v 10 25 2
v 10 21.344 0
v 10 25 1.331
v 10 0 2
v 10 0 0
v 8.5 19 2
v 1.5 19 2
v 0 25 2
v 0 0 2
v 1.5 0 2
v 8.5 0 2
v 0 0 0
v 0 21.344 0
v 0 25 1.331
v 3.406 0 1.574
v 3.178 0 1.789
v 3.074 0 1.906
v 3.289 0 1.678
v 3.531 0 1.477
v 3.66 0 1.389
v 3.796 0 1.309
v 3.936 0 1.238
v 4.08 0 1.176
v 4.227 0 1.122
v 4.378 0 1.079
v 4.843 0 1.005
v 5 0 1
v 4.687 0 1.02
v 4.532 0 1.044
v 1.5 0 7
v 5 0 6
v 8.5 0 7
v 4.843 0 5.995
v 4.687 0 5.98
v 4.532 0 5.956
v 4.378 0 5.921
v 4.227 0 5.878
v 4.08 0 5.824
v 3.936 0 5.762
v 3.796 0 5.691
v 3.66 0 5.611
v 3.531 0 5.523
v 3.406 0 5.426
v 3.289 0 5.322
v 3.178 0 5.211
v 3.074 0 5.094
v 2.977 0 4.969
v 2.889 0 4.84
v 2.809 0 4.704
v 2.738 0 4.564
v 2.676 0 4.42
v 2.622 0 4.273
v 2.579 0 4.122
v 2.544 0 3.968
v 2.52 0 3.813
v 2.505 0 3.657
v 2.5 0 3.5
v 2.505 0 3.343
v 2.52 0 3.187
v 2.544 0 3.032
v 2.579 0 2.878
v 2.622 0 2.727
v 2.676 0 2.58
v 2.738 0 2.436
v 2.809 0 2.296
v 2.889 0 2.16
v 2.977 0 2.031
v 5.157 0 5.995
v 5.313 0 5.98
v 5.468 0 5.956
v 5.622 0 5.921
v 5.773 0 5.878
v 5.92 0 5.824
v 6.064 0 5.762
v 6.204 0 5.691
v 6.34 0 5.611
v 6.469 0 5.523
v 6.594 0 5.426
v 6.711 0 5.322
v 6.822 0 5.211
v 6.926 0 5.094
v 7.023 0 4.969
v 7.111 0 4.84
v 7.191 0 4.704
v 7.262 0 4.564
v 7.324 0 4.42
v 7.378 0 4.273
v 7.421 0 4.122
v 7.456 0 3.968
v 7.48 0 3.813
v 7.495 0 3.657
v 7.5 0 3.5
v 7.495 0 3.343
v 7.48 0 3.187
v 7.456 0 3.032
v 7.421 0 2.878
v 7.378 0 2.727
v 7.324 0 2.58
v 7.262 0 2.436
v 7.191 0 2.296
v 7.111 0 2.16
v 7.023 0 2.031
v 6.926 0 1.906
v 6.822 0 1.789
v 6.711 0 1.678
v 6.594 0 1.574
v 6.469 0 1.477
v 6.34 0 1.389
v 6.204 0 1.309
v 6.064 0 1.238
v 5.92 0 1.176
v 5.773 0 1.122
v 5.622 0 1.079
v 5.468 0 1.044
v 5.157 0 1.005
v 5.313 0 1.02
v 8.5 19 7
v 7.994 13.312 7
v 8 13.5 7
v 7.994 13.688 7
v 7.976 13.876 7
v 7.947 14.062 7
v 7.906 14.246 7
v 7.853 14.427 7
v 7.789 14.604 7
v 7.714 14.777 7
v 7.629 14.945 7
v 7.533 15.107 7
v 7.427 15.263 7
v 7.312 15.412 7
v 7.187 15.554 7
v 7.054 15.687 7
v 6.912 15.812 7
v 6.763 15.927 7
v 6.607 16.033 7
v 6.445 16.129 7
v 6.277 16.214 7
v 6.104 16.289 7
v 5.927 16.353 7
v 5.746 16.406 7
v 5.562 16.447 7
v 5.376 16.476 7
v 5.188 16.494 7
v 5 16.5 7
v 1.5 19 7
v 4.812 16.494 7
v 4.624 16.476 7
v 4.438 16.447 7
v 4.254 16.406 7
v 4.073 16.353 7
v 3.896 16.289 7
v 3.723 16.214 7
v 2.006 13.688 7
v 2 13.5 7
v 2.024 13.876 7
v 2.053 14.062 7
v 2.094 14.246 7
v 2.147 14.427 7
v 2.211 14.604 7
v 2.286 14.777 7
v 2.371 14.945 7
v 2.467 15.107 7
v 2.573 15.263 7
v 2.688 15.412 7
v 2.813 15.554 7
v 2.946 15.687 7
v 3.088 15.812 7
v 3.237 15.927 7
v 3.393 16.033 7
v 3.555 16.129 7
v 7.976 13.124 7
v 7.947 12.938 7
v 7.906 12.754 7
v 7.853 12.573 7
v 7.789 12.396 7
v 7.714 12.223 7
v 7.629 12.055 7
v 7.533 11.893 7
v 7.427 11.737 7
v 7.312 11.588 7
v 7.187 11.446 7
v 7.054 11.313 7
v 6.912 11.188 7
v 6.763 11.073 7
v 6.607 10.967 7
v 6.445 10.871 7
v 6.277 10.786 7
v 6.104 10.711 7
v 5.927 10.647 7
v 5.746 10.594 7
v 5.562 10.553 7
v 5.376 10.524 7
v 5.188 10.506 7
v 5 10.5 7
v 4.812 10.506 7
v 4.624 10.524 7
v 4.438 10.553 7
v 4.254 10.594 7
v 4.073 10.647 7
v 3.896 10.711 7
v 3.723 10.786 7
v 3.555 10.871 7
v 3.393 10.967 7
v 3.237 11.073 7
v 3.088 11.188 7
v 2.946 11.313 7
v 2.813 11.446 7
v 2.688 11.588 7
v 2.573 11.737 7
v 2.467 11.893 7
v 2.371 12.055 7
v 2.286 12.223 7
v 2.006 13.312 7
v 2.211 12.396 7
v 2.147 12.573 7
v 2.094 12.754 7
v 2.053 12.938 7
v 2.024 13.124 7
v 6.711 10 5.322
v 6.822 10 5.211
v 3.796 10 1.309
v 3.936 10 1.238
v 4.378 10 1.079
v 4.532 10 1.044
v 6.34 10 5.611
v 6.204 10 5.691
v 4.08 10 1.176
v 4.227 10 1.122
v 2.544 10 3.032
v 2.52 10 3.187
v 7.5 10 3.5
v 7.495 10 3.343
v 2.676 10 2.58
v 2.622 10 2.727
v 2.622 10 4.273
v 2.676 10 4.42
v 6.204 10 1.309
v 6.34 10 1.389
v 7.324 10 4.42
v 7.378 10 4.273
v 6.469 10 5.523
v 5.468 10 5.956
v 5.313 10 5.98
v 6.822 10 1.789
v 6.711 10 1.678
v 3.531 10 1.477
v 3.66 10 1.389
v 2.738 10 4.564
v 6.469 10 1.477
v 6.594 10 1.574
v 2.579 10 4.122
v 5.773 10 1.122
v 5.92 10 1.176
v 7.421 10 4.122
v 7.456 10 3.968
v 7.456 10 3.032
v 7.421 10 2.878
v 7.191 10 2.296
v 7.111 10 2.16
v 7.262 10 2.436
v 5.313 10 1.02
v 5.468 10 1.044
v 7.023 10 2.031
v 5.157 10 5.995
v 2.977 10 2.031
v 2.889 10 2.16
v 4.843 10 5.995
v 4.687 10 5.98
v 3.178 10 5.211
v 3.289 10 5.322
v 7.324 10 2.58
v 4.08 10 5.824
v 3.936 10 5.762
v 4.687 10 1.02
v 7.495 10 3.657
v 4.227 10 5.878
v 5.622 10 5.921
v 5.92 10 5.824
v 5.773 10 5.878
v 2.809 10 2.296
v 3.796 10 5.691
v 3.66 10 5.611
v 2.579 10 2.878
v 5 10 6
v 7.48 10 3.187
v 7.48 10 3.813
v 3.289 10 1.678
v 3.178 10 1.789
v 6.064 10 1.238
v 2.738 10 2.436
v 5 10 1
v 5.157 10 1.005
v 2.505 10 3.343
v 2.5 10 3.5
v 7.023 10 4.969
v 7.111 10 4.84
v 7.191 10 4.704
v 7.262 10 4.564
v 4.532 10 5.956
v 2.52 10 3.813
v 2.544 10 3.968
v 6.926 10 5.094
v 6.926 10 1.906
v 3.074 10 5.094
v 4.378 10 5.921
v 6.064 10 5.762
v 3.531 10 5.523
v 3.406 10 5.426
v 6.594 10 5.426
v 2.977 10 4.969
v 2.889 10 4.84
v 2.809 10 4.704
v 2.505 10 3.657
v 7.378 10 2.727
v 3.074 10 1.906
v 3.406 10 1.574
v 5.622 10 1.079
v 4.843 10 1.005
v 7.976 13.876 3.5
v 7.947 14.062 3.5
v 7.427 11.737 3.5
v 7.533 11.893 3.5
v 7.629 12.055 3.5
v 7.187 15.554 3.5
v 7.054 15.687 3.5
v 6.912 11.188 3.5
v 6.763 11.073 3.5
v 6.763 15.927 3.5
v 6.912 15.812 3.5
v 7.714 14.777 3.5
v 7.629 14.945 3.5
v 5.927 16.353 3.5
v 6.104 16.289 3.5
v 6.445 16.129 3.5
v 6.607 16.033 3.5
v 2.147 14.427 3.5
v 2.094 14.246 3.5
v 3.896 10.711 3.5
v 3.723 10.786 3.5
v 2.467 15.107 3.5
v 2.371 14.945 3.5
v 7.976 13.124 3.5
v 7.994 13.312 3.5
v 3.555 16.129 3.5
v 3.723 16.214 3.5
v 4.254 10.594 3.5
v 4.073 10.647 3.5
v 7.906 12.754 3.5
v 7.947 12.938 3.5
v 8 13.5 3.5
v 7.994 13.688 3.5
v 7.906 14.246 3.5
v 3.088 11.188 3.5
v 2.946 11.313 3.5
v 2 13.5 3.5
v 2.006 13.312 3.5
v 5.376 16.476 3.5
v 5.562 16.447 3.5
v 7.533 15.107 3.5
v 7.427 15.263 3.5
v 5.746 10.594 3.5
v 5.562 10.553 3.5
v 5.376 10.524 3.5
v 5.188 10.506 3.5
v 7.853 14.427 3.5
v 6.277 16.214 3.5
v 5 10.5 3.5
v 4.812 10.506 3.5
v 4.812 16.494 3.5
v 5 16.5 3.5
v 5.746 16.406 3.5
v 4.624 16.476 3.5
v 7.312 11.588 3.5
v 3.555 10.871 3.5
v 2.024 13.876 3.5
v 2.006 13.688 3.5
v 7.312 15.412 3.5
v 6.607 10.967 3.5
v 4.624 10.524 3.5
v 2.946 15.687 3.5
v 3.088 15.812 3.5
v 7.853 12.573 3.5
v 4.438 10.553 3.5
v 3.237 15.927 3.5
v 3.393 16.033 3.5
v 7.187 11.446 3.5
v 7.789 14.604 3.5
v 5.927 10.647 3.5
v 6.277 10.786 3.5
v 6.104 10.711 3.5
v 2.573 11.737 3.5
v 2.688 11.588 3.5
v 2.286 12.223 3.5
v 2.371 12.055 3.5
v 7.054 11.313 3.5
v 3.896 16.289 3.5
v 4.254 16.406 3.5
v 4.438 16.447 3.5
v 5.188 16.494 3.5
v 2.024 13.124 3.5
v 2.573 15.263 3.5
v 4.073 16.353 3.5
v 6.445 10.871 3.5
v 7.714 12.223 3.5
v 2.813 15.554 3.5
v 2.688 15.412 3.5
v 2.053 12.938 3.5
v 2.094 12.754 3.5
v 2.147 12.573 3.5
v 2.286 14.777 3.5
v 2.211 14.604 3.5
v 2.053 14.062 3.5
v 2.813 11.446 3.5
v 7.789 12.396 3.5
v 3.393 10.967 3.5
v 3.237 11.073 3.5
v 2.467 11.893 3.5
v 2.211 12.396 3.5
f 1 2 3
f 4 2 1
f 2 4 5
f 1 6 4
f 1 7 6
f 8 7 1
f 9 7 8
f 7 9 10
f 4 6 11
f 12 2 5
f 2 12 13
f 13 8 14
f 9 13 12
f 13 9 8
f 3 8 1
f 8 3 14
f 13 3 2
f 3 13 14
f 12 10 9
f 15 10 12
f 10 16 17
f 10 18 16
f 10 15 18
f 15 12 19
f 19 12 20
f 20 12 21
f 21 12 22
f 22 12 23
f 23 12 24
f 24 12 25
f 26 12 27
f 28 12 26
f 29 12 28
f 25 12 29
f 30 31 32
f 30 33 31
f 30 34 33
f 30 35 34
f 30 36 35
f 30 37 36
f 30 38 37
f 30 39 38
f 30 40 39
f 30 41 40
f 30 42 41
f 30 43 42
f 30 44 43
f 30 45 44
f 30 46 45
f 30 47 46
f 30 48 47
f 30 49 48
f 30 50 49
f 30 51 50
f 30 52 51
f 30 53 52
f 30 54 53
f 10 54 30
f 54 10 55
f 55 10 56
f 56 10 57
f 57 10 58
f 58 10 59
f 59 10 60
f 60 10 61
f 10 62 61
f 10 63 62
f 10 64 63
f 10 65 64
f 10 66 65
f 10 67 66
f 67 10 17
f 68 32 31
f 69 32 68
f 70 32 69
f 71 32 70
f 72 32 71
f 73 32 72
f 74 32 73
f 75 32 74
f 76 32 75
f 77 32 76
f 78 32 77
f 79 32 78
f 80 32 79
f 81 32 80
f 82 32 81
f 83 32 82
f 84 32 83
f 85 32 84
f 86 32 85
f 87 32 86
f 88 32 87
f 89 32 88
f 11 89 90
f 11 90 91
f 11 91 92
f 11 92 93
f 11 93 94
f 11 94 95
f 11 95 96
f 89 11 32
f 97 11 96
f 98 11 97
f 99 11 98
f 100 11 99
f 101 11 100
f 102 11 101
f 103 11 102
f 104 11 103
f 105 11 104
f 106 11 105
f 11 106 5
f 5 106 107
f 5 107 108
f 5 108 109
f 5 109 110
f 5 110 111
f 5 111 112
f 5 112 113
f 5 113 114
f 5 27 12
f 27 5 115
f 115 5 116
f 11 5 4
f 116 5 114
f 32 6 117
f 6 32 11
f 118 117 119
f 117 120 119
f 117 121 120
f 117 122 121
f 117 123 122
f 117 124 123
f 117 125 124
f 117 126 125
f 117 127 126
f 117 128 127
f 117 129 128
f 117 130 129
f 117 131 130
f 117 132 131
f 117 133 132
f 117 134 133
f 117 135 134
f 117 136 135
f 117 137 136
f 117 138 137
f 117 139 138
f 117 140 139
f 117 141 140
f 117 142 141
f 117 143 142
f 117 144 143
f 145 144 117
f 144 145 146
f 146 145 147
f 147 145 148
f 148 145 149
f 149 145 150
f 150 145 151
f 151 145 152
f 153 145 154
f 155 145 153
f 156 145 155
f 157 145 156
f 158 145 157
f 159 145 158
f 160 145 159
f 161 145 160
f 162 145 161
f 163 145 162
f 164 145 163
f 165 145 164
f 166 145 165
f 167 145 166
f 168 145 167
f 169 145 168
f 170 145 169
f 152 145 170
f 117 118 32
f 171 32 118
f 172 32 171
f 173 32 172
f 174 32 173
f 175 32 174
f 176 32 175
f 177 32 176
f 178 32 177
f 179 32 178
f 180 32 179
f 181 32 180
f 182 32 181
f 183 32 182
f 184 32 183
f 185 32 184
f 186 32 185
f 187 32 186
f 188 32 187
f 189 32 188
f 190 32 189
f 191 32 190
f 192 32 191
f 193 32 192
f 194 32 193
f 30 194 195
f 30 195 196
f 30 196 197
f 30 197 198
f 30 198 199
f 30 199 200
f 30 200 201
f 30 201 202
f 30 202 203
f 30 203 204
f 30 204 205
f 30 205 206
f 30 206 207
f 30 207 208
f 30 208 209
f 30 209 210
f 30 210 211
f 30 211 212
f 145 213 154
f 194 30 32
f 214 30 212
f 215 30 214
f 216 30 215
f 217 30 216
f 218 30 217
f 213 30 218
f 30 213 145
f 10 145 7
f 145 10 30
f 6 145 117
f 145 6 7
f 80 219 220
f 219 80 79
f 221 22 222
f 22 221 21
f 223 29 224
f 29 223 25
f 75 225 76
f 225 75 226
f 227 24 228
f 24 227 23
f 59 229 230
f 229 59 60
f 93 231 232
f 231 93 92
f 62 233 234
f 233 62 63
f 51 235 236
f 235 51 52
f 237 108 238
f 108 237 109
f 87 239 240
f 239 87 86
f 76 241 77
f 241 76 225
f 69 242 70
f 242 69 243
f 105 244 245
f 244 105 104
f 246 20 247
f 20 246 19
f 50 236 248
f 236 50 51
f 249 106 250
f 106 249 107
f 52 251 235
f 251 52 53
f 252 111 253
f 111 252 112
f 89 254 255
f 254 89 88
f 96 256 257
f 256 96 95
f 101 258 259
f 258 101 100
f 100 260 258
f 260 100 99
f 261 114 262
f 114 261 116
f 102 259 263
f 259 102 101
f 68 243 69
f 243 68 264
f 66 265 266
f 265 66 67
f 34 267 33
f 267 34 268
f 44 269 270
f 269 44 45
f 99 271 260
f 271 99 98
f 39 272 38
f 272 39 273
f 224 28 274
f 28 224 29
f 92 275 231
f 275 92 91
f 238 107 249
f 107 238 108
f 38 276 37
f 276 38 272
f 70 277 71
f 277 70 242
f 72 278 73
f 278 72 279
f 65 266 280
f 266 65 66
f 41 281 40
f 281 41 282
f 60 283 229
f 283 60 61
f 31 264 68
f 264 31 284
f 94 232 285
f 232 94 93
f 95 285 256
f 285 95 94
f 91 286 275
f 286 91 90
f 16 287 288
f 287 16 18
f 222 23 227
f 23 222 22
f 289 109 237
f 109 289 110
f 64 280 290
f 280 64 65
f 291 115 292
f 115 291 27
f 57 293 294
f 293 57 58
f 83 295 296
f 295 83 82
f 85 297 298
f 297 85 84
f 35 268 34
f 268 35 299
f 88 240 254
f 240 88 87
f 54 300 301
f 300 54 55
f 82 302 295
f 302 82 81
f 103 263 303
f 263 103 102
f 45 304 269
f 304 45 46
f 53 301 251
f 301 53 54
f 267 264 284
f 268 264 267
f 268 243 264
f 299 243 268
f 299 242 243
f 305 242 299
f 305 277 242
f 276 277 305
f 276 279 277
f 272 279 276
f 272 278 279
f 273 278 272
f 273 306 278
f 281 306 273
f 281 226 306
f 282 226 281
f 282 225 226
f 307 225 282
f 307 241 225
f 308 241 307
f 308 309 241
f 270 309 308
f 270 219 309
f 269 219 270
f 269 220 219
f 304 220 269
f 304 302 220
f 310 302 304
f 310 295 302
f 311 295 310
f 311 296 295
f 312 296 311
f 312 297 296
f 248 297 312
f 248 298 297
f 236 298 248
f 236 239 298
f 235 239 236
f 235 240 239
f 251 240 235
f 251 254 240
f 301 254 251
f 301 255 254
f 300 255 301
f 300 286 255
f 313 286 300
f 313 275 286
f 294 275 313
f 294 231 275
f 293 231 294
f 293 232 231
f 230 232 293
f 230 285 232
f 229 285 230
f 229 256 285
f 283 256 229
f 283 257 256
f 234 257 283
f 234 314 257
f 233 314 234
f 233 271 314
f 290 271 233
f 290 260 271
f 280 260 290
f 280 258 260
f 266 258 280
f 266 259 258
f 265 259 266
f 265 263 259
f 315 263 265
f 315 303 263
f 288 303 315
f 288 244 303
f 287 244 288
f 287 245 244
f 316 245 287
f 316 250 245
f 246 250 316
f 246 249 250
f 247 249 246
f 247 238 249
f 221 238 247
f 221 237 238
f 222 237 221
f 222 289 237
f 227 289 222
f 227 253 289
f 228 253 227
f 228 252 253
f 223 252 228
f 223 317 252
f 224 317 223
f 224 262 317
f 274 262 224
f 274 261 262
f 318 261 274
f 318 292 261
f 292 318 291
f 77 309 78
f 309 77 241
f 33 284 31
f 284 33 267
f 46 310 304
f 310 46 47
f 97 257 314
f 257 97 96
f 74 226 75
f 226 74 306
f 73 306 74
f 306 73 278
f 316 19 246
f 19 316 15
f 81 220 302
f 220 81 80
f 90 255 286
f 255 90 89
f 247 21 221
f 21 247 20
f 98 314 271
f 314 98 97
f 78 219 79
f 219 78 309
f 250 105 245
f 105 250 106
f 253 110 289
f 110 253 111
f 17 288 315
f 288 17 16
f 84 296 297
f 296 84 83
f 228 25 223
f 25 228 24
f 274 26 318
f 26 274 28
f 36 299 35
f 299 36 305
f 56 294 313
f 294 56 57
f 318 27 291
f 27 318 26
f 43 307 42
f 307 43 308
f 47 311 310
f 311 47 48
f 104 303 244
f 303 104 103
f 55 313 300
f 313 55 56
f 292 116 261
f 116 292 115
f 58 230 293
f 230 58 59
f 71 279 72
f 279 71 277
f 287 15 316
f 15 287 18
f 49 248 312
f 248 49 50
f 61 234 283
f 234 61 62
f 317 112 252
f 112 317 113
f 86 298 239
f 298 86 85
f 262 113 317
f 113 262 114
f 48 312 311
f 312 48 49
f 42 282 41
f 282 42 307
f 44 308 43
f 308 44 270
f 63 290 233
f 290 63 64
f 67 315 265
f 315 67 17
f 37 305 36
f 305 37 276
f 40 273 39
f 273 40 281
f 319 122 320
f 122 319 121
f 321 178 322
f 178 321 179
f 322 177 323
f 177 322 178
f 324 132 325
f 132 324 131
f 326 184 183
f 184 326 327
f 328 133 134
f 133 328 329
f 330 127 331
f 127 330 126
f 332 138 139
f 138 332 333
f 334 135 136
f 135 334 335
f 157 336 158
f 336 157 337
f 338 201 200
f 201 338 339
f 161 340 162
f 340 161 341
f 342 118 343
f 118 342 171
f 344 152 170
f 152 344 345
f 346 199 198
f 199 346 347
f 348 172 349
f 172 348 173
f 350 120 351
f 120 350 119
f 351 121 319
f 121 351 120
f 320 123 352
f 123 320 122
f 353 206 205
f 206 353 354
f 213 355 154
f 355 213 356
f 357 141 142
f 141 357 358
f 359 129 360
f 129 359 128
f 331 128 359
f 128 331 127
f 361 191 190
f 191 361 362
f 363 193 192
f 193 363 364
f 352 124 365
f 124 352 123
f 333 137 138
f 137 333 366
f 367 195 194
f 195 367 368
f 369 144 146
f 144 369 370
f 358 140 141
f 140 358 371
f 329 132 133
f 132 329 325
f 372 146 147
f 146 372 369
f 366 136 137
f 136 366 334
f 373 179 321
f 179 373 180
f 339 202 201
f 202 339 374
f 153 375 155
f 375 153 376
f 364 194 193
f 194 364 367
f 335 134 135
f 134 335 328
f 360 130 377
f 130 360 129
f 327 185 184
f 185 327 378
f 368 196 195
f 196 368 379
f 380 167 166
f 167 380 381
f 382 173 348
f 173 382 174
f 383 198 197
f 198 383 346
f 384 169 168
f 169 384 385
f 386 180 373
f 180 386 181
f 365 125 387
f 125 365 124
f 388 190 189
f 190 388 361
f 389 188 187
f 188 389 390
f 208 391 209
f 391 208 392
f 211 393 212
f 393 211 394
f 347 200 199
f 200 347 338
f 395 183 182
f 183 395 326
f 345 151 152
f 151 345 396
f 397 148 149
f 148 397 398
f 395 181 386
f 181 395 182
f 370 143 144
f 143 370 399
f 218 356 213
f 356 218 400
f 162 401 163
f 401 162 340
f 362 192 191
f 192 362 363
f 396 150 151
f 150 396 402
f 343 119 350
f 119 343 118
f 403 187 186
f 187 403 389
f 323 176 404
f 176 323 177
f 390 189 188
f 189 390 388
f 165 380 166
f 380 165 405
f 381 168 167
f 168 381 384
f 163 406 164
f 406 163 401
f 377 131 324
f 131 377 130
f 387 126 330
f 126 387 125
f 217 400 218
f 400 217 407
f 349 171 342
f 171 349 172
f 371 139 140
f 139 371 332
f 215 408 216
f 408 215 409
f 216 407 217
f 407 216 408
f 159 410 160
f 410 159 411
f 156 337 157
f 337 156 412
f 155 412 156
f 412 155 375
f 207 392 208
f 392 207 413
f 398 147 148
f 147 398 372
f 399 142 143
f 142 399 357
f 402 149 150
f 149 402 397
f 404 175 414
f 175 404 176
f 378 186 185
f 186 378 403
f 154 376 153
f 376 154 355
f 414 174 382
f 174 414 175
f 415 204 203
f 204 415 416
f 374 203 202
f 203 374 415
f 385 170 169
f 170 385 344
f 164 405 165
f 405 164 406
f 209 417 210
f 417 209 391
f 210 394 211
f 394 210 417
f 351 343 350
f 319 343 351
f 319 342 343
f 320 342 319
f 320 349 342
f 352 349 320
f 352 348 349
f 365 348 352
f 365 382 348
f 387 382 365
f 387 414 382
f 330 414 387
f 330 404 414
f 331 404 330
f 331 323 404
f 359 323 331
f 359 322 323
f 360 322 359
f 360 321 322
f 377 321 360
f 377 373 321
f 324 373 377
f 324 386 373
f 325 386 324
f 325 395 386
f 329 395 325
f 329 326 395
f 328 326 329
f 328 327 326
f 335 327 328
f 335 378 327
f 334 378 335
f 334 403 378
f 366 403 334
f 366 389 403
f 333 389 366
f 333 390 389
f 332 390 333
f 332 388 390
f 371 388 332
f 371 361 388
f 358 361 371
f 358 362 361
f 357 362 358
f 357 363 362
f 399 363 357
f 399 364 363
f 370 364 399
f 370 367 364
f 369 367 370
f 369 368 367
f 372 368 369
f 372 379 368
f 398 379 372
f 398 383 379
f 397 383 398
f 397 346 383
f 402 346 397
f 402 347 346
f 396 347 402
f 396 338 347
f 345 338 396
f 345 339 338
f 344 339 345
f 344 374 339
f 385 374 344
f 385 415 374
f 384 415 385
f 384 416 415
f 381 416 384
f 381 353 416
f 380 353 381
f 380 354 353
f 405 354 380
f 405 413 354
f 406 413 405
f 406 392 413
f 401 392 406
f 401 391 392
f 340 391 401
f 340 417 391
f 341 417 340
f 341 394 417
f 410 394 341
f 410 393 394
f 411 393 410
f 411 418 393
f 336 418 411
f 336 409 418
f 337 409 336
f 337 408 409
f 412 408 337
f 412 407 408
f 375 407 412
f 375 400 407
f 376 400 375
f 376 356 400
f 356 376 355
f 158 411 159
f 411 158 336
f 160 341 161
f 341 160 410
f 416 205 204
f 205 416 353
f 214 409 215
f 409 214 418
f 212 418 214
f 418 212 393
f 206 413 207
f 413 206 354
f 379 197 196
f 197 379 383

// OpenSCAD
$fn = 100;

slide_base_width = 10;
slide_base_depth = 20;
slide_base_height = 2;

slide_front_depth = 5;

top_width = 7;
top_depth = 19;
top_height = 5;


hole_length = 10;
hole_diameter = 5;
hole_height_offset = 1;

module base() {
    cube([slide_base_width, slide_base_depth, slide_base_height]);
    translate([(slide_base_width - top_width) / 2, 0, slide_base_height]) cube([top_width, top_depth, top_height]);
    difference() {
        translate([0, slide_base_depth, 0]) cube([slide_base_width, slide_front_depth, slide_base_height]);
        rotate([20, 0, 0]) translate([0, slide_base_depth, -slide_base_height-7.3]) cube([slide_base_width, slide_front_depth, slide_base_height]);
    }
    
}

difference() {
    base();
    translate([slide_base_width/2, 0, hole_height_offset + hole_diameter/2]) rotate([-90, 0, 0]) cylinder(d=hole_diameter, hole_length);
    translate([slide_base_width/2, hole_length + top_width / 2, hole_height_offset + hole_diameter/2]) cylinder(d=top_width - 1, top_height);
}
